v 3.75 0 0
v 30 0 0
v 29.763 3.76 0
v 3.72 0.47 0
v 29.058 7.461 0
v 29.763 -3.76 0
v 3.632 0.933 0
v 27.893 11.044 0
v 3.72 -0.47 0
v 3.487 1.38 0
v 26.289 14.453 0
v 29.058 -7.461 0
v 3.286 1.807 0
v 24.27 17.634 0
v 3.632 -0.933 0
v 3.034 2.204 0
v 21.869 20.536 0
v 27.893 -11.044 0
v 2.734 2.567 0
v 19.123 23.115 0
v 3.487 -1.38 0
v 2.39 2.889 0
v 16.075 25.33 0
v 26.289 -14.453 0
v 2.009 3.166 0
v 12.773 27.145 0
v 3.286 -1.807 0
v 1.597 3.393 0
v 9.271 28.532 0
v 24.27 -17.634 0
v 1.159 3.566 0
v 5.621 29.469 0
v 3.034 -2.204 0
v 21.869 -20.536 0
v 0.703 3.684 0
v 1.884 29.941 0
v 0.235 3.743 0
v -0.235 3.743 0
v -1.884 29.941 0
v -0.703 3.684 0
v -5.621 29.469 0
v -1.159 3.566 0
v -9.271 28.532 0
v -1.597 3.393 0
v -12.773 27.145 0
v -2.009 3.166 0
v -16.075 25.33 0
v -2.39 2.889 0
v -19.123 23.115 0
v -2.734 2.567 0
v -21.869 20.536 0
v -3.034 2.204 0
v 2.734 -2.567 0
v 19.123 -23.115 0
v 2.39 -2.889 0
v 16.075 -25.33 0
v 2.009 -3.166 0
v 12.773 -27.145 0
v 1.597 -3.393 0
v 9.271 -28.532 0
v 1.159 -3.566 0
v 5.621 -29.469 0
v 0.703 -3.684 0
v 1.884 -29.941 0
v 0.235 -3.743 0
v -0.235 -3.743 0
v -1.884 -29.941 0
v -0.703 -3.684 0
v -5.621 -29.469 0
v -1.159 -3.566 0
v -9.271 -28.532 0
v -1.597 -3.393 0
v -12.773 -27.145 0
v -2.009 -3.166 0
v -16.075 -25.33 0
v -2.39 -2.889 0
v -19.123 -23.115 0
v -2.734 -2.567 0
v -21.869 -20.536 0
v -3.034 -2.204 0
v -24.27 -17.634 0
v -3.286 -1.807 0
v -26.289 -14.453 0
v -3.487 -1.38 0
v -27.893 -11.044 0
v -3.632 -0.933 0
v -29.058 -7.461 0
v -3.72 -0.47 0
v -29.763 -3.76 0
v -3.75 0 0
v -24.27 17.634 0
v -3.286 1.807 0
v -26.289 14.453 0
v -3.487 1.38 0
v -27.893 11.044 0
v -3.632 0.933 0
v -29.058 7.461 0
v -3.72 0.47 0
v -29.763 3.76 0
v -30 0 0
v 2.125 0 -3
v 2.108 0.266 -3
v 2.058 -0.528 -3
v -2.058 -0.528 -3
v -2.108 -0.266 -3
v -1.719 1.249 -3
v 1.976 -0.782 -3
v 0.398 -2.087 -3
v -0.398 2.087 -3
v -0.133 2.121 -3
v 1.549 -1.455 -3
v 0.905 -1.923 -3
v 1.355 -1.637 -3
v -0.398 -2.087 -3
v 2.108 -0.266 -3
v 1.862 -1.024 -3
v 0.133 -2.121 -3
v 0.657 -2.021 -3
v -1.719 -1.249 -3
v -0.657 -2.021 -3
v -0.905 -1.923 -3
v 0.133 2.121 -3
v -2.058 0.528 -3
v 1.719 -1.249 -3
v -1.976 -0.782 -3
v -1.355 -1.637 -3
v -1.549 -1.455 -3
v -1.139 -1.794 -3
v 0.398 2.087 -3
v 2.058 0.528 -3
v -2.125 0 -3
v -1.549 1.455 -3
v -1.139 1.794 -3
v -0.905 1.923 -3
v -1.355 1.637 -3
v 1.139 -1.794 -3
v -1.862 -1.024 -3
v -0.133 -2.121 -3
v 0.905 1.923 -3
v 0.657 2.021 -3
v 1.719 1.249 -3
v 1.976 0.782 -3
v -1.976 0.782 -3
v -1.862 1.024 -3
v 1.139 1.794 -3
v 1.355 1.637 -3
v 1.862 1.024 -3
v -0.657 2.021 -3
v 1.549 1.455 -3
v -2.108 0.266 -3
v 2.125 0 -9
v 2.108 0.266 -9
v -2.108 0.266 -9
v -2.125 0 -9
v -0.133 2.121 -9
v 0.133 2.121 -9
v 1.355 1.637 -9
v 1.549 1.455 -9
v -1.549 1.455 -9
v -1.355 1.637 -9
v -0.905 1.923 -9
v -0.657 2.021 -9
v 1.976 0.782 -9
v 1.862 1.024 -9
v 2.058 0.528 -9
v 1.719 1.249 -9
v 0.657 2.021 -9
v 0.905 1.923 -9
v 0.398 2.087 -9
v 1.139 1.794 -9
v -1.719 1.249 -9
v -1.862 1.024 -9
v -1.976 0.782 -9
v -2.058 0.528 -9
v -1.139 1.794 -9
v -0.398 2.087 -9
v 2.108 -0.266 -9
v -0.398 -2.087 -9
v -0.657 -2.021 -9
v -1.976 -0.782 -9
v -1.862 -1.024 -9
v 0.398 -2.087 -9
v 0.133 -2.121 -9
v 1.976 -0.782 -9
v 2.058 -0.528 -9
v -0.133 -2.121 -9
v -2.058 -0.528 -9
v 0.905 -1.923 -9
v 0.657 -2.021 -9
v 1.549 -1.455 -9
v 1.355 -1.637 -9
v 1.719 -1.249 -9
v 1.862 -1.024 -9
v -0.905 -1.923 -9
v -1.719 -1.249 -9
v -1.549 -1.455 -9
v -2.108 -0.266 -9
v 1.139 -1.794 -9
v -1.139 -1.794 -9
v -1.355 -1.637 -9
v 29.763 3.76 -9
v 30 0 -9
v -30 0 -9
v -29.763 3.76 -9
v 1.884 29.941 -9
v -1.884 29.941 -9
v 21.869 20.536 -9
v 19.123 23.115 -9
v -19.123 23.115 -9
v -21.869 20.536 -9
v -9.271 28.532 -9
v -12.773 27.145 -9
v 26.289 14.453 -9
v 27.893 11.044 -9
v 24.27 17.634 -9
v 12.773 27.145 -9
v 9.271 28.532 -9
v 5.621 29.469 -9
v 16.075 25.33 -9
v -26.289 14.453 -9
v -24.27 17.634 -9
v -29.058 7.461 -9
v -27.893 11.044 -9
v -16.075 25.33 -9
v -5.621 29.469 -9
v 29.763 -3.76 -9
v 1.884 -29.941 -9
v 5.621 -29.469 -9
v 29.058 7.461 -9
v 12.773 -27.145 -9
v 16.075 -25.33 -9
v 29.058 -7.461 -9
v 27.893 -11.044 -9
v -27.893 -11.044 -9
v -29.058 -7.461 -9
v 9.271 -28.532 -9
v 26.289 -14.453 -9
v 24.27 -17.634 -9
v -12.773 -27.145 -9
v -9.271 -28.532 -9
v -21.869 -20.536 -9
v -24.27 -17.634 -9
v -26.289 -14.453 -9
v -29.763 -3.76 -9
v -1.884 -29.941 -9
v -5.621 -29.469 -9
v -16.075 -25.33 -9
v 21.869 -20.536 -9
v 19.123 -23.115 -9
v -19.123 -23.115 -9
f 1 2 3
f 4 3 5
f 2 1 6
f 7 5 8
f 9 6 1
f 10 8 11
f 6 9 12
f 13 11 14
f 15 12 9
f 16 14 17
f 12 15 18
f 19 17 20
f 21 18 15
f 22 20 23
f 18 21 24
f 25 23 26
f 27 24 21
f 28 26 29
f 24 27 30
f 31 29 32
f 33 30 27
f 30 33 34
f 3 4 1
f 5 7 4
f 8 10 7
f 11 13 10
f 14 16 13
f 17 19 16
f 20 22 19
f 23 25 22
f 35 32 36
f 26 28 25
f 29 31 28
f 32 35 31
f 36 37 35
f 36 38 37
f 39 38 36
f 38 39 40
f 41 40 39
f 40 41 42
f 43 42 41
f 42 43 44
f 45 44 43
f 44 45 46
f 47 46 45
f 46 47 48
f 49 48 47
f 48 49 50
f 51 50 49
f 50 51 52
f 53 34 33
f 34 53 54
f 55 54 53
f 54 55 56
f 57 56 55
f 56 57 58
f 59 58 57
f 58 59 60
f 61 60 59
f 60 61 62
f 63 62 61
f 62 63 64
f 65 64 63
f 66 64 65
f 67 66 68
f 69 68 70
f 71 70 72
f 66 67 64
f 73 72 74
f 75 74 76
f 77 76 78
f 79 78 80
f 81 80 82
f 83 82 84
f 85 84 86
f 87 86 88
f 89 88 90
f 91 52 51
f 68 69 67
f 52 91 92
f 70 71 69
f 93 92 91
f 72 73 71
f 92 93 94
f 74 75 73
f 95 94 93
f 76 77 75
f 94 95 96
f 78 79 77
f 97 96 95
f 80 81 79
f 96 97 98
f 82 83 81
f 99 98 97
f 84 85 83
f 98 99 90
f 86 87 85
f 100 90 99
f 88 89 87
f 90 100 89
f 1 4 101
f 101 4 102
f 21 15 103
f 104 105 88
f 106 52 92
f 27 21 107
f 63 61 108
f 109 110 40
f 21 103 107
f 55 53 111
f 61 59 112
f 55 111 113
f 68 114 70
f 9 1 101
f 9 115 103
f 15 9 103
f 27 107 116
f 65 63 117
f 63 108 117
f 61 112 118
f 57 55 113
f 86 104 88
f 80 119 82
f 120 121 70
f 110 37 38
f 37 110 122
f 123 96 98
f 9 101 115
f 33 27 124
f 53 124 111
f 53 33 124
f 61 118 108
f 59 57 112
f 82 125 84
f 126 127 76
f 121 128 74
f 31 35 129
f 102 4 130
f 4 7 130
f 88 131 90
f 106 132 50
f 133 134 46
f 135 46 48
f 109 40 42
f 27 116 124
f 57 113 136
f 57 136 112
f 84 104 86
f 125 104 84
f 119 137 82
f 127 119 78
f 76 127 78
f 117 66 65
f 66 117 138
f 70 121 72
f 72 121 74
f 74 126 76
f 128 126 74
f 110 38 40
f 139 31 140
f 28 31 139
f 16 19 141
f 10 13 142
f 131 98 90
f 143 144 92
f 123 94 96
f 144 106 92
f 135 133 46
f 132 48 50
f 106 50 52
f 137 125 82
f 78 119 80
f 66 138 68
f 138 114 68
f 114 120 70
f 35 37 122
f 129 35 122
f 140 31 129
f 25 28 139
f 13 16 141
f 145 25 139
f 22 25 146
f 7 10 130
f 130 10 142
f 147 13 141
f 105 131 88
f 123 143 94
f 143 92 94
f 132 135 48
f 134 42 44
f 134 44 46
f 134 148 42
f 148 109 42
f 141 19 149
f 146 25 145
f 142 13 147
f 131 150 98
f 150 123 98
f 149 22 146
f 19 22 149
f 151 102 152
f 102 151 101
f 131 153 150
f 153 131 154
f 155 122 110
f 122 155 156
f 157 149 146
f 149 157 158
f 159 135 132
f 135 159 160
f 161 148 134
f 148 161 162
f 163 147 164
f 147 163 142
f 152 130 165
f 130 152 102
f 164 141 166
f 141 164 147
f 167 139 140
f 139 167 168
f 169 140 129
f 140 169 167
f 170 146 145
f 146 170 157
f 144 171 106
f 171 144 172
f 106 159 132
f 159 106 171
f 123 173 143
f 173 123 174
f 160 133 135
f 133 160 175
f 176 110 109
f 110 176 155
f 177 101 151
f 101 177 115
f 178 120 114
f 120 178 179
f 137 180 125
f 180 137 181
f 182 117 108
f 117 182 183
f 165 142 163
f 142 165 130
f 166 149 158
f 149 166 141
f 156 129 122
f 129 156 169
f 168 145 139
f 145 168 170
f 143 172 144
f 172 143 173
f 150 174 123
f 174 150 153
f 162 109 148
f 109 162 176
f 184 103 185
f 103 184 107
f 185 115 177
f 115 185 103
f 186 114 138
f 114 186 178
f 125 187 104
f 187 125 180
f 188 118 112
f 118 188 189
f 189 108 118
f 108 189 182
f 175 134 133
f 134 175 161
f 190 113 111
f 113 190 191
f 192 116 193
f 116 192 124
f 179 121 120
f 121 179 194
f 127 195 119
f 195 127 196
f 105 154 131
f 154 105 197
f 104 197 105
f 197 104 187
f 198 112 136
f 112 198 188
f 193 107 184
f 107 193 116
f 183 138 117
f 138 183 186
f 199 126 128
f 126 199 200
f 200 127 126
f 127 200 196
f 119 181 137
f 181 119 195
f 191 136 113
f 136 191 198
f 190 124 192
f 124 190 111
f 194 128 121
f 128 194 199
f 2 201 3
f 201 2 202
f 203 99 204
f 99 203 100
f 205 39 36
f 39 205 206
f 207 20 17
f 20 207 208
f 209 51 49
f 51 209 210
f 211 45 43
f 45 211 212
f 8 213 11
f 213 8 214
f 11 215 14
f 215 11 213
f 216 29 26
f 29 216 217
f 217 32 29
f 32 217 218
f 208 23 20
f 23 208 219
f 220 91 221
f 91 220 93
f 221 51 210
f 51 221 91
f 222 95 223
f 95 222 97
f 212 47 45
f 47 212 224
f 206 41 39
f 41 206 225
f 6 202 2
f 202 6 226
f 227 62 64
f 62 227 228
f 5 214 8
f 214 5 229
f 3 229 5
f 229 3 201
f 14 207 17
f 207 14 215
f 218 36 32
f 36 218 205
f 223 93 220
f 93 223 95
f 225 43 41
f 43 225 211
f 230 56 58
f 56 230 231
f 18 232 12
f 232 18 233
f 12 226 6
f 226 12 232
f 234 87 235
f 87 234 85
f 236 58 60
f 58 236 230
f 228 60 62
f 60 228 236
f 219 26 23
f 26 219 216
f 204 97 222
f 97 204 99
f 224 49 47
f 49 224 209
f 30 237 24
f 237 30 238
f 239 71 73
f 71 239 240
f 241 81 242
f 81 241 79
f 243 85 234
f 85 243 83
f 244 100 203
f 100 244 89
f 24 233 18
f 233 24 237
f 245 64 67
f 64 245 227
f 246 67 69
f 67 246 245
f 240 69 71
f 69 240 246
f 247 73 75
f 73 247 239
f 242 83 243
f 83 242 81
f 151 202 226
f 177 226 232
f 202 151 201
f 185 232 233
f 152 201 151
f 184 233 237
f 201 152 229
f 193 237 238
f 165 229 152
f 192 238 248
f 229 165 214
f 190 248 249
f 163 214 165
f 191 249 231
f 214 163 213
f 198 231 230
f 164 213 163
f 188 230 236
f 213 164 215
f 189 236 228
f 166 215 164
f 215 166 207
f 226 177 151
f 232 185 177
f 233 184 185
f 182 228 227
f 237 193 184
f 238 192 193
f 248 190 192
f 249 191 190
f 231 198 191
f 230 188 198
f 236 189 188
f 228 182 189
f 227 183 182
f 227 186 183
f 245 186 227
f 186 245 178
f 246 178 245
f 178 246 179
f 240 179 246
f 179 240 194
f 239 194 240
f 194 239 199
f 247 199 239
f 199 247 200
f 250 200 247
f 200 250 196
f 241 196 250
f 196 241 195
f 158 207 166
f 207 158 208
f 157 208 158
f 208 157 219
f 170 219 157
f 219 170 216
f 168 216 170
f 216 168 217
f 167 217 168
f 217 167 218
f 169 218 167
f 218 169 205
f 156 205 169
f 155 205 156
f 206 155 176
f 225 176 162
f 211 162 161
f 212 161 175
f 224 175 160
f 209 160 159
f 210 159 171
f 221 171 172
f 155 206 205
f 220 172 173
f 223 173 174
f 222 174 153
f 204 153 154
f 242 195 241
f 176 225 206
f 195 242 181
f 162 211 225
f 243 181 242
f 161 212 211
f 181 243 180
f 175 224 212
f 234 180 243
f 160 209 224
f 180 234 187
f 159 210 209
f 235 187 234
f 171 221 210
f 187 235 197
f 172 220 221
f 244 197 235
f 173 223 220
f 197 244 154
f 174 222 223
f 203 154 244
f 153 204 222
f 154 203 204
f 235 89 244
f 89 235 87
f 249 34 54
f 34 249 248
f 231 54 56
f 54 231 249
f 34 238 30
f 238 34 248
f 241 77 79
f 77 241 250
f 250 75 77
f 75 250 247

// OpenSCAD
$fn = 50;


difference() {
	union() {
		translate(v = [0, 0, -9.0000000000]) {
			cylinder(h = 9, r = 30.0000000000);
		}
	}
	union() {
		translate(v = [0, 0, 0]) {
			rotate(a = [0, 0, 0]) {
				difference() {
					union() {
						translate(v = [0, 0, -12.0000000000]) {
							cylinder(h = 12, r = 2.0000000000);
						}
						translate(v = [0, 0, -3]) {
							cylinder(h = 3, r1 = 2.1250000000, r2 = 3.7500000000);
						}
						translate(v = [0, 0, -12.0000000000]) {
							cylinder(h = 12, r = 2.1250000000);
						}
						translate(v = [0, 0, -12.0000000000]) {
							cylinder(h = 12, r = 2.0000000000);
						}
					}
					union();
				}
			}
		}
	}
}
